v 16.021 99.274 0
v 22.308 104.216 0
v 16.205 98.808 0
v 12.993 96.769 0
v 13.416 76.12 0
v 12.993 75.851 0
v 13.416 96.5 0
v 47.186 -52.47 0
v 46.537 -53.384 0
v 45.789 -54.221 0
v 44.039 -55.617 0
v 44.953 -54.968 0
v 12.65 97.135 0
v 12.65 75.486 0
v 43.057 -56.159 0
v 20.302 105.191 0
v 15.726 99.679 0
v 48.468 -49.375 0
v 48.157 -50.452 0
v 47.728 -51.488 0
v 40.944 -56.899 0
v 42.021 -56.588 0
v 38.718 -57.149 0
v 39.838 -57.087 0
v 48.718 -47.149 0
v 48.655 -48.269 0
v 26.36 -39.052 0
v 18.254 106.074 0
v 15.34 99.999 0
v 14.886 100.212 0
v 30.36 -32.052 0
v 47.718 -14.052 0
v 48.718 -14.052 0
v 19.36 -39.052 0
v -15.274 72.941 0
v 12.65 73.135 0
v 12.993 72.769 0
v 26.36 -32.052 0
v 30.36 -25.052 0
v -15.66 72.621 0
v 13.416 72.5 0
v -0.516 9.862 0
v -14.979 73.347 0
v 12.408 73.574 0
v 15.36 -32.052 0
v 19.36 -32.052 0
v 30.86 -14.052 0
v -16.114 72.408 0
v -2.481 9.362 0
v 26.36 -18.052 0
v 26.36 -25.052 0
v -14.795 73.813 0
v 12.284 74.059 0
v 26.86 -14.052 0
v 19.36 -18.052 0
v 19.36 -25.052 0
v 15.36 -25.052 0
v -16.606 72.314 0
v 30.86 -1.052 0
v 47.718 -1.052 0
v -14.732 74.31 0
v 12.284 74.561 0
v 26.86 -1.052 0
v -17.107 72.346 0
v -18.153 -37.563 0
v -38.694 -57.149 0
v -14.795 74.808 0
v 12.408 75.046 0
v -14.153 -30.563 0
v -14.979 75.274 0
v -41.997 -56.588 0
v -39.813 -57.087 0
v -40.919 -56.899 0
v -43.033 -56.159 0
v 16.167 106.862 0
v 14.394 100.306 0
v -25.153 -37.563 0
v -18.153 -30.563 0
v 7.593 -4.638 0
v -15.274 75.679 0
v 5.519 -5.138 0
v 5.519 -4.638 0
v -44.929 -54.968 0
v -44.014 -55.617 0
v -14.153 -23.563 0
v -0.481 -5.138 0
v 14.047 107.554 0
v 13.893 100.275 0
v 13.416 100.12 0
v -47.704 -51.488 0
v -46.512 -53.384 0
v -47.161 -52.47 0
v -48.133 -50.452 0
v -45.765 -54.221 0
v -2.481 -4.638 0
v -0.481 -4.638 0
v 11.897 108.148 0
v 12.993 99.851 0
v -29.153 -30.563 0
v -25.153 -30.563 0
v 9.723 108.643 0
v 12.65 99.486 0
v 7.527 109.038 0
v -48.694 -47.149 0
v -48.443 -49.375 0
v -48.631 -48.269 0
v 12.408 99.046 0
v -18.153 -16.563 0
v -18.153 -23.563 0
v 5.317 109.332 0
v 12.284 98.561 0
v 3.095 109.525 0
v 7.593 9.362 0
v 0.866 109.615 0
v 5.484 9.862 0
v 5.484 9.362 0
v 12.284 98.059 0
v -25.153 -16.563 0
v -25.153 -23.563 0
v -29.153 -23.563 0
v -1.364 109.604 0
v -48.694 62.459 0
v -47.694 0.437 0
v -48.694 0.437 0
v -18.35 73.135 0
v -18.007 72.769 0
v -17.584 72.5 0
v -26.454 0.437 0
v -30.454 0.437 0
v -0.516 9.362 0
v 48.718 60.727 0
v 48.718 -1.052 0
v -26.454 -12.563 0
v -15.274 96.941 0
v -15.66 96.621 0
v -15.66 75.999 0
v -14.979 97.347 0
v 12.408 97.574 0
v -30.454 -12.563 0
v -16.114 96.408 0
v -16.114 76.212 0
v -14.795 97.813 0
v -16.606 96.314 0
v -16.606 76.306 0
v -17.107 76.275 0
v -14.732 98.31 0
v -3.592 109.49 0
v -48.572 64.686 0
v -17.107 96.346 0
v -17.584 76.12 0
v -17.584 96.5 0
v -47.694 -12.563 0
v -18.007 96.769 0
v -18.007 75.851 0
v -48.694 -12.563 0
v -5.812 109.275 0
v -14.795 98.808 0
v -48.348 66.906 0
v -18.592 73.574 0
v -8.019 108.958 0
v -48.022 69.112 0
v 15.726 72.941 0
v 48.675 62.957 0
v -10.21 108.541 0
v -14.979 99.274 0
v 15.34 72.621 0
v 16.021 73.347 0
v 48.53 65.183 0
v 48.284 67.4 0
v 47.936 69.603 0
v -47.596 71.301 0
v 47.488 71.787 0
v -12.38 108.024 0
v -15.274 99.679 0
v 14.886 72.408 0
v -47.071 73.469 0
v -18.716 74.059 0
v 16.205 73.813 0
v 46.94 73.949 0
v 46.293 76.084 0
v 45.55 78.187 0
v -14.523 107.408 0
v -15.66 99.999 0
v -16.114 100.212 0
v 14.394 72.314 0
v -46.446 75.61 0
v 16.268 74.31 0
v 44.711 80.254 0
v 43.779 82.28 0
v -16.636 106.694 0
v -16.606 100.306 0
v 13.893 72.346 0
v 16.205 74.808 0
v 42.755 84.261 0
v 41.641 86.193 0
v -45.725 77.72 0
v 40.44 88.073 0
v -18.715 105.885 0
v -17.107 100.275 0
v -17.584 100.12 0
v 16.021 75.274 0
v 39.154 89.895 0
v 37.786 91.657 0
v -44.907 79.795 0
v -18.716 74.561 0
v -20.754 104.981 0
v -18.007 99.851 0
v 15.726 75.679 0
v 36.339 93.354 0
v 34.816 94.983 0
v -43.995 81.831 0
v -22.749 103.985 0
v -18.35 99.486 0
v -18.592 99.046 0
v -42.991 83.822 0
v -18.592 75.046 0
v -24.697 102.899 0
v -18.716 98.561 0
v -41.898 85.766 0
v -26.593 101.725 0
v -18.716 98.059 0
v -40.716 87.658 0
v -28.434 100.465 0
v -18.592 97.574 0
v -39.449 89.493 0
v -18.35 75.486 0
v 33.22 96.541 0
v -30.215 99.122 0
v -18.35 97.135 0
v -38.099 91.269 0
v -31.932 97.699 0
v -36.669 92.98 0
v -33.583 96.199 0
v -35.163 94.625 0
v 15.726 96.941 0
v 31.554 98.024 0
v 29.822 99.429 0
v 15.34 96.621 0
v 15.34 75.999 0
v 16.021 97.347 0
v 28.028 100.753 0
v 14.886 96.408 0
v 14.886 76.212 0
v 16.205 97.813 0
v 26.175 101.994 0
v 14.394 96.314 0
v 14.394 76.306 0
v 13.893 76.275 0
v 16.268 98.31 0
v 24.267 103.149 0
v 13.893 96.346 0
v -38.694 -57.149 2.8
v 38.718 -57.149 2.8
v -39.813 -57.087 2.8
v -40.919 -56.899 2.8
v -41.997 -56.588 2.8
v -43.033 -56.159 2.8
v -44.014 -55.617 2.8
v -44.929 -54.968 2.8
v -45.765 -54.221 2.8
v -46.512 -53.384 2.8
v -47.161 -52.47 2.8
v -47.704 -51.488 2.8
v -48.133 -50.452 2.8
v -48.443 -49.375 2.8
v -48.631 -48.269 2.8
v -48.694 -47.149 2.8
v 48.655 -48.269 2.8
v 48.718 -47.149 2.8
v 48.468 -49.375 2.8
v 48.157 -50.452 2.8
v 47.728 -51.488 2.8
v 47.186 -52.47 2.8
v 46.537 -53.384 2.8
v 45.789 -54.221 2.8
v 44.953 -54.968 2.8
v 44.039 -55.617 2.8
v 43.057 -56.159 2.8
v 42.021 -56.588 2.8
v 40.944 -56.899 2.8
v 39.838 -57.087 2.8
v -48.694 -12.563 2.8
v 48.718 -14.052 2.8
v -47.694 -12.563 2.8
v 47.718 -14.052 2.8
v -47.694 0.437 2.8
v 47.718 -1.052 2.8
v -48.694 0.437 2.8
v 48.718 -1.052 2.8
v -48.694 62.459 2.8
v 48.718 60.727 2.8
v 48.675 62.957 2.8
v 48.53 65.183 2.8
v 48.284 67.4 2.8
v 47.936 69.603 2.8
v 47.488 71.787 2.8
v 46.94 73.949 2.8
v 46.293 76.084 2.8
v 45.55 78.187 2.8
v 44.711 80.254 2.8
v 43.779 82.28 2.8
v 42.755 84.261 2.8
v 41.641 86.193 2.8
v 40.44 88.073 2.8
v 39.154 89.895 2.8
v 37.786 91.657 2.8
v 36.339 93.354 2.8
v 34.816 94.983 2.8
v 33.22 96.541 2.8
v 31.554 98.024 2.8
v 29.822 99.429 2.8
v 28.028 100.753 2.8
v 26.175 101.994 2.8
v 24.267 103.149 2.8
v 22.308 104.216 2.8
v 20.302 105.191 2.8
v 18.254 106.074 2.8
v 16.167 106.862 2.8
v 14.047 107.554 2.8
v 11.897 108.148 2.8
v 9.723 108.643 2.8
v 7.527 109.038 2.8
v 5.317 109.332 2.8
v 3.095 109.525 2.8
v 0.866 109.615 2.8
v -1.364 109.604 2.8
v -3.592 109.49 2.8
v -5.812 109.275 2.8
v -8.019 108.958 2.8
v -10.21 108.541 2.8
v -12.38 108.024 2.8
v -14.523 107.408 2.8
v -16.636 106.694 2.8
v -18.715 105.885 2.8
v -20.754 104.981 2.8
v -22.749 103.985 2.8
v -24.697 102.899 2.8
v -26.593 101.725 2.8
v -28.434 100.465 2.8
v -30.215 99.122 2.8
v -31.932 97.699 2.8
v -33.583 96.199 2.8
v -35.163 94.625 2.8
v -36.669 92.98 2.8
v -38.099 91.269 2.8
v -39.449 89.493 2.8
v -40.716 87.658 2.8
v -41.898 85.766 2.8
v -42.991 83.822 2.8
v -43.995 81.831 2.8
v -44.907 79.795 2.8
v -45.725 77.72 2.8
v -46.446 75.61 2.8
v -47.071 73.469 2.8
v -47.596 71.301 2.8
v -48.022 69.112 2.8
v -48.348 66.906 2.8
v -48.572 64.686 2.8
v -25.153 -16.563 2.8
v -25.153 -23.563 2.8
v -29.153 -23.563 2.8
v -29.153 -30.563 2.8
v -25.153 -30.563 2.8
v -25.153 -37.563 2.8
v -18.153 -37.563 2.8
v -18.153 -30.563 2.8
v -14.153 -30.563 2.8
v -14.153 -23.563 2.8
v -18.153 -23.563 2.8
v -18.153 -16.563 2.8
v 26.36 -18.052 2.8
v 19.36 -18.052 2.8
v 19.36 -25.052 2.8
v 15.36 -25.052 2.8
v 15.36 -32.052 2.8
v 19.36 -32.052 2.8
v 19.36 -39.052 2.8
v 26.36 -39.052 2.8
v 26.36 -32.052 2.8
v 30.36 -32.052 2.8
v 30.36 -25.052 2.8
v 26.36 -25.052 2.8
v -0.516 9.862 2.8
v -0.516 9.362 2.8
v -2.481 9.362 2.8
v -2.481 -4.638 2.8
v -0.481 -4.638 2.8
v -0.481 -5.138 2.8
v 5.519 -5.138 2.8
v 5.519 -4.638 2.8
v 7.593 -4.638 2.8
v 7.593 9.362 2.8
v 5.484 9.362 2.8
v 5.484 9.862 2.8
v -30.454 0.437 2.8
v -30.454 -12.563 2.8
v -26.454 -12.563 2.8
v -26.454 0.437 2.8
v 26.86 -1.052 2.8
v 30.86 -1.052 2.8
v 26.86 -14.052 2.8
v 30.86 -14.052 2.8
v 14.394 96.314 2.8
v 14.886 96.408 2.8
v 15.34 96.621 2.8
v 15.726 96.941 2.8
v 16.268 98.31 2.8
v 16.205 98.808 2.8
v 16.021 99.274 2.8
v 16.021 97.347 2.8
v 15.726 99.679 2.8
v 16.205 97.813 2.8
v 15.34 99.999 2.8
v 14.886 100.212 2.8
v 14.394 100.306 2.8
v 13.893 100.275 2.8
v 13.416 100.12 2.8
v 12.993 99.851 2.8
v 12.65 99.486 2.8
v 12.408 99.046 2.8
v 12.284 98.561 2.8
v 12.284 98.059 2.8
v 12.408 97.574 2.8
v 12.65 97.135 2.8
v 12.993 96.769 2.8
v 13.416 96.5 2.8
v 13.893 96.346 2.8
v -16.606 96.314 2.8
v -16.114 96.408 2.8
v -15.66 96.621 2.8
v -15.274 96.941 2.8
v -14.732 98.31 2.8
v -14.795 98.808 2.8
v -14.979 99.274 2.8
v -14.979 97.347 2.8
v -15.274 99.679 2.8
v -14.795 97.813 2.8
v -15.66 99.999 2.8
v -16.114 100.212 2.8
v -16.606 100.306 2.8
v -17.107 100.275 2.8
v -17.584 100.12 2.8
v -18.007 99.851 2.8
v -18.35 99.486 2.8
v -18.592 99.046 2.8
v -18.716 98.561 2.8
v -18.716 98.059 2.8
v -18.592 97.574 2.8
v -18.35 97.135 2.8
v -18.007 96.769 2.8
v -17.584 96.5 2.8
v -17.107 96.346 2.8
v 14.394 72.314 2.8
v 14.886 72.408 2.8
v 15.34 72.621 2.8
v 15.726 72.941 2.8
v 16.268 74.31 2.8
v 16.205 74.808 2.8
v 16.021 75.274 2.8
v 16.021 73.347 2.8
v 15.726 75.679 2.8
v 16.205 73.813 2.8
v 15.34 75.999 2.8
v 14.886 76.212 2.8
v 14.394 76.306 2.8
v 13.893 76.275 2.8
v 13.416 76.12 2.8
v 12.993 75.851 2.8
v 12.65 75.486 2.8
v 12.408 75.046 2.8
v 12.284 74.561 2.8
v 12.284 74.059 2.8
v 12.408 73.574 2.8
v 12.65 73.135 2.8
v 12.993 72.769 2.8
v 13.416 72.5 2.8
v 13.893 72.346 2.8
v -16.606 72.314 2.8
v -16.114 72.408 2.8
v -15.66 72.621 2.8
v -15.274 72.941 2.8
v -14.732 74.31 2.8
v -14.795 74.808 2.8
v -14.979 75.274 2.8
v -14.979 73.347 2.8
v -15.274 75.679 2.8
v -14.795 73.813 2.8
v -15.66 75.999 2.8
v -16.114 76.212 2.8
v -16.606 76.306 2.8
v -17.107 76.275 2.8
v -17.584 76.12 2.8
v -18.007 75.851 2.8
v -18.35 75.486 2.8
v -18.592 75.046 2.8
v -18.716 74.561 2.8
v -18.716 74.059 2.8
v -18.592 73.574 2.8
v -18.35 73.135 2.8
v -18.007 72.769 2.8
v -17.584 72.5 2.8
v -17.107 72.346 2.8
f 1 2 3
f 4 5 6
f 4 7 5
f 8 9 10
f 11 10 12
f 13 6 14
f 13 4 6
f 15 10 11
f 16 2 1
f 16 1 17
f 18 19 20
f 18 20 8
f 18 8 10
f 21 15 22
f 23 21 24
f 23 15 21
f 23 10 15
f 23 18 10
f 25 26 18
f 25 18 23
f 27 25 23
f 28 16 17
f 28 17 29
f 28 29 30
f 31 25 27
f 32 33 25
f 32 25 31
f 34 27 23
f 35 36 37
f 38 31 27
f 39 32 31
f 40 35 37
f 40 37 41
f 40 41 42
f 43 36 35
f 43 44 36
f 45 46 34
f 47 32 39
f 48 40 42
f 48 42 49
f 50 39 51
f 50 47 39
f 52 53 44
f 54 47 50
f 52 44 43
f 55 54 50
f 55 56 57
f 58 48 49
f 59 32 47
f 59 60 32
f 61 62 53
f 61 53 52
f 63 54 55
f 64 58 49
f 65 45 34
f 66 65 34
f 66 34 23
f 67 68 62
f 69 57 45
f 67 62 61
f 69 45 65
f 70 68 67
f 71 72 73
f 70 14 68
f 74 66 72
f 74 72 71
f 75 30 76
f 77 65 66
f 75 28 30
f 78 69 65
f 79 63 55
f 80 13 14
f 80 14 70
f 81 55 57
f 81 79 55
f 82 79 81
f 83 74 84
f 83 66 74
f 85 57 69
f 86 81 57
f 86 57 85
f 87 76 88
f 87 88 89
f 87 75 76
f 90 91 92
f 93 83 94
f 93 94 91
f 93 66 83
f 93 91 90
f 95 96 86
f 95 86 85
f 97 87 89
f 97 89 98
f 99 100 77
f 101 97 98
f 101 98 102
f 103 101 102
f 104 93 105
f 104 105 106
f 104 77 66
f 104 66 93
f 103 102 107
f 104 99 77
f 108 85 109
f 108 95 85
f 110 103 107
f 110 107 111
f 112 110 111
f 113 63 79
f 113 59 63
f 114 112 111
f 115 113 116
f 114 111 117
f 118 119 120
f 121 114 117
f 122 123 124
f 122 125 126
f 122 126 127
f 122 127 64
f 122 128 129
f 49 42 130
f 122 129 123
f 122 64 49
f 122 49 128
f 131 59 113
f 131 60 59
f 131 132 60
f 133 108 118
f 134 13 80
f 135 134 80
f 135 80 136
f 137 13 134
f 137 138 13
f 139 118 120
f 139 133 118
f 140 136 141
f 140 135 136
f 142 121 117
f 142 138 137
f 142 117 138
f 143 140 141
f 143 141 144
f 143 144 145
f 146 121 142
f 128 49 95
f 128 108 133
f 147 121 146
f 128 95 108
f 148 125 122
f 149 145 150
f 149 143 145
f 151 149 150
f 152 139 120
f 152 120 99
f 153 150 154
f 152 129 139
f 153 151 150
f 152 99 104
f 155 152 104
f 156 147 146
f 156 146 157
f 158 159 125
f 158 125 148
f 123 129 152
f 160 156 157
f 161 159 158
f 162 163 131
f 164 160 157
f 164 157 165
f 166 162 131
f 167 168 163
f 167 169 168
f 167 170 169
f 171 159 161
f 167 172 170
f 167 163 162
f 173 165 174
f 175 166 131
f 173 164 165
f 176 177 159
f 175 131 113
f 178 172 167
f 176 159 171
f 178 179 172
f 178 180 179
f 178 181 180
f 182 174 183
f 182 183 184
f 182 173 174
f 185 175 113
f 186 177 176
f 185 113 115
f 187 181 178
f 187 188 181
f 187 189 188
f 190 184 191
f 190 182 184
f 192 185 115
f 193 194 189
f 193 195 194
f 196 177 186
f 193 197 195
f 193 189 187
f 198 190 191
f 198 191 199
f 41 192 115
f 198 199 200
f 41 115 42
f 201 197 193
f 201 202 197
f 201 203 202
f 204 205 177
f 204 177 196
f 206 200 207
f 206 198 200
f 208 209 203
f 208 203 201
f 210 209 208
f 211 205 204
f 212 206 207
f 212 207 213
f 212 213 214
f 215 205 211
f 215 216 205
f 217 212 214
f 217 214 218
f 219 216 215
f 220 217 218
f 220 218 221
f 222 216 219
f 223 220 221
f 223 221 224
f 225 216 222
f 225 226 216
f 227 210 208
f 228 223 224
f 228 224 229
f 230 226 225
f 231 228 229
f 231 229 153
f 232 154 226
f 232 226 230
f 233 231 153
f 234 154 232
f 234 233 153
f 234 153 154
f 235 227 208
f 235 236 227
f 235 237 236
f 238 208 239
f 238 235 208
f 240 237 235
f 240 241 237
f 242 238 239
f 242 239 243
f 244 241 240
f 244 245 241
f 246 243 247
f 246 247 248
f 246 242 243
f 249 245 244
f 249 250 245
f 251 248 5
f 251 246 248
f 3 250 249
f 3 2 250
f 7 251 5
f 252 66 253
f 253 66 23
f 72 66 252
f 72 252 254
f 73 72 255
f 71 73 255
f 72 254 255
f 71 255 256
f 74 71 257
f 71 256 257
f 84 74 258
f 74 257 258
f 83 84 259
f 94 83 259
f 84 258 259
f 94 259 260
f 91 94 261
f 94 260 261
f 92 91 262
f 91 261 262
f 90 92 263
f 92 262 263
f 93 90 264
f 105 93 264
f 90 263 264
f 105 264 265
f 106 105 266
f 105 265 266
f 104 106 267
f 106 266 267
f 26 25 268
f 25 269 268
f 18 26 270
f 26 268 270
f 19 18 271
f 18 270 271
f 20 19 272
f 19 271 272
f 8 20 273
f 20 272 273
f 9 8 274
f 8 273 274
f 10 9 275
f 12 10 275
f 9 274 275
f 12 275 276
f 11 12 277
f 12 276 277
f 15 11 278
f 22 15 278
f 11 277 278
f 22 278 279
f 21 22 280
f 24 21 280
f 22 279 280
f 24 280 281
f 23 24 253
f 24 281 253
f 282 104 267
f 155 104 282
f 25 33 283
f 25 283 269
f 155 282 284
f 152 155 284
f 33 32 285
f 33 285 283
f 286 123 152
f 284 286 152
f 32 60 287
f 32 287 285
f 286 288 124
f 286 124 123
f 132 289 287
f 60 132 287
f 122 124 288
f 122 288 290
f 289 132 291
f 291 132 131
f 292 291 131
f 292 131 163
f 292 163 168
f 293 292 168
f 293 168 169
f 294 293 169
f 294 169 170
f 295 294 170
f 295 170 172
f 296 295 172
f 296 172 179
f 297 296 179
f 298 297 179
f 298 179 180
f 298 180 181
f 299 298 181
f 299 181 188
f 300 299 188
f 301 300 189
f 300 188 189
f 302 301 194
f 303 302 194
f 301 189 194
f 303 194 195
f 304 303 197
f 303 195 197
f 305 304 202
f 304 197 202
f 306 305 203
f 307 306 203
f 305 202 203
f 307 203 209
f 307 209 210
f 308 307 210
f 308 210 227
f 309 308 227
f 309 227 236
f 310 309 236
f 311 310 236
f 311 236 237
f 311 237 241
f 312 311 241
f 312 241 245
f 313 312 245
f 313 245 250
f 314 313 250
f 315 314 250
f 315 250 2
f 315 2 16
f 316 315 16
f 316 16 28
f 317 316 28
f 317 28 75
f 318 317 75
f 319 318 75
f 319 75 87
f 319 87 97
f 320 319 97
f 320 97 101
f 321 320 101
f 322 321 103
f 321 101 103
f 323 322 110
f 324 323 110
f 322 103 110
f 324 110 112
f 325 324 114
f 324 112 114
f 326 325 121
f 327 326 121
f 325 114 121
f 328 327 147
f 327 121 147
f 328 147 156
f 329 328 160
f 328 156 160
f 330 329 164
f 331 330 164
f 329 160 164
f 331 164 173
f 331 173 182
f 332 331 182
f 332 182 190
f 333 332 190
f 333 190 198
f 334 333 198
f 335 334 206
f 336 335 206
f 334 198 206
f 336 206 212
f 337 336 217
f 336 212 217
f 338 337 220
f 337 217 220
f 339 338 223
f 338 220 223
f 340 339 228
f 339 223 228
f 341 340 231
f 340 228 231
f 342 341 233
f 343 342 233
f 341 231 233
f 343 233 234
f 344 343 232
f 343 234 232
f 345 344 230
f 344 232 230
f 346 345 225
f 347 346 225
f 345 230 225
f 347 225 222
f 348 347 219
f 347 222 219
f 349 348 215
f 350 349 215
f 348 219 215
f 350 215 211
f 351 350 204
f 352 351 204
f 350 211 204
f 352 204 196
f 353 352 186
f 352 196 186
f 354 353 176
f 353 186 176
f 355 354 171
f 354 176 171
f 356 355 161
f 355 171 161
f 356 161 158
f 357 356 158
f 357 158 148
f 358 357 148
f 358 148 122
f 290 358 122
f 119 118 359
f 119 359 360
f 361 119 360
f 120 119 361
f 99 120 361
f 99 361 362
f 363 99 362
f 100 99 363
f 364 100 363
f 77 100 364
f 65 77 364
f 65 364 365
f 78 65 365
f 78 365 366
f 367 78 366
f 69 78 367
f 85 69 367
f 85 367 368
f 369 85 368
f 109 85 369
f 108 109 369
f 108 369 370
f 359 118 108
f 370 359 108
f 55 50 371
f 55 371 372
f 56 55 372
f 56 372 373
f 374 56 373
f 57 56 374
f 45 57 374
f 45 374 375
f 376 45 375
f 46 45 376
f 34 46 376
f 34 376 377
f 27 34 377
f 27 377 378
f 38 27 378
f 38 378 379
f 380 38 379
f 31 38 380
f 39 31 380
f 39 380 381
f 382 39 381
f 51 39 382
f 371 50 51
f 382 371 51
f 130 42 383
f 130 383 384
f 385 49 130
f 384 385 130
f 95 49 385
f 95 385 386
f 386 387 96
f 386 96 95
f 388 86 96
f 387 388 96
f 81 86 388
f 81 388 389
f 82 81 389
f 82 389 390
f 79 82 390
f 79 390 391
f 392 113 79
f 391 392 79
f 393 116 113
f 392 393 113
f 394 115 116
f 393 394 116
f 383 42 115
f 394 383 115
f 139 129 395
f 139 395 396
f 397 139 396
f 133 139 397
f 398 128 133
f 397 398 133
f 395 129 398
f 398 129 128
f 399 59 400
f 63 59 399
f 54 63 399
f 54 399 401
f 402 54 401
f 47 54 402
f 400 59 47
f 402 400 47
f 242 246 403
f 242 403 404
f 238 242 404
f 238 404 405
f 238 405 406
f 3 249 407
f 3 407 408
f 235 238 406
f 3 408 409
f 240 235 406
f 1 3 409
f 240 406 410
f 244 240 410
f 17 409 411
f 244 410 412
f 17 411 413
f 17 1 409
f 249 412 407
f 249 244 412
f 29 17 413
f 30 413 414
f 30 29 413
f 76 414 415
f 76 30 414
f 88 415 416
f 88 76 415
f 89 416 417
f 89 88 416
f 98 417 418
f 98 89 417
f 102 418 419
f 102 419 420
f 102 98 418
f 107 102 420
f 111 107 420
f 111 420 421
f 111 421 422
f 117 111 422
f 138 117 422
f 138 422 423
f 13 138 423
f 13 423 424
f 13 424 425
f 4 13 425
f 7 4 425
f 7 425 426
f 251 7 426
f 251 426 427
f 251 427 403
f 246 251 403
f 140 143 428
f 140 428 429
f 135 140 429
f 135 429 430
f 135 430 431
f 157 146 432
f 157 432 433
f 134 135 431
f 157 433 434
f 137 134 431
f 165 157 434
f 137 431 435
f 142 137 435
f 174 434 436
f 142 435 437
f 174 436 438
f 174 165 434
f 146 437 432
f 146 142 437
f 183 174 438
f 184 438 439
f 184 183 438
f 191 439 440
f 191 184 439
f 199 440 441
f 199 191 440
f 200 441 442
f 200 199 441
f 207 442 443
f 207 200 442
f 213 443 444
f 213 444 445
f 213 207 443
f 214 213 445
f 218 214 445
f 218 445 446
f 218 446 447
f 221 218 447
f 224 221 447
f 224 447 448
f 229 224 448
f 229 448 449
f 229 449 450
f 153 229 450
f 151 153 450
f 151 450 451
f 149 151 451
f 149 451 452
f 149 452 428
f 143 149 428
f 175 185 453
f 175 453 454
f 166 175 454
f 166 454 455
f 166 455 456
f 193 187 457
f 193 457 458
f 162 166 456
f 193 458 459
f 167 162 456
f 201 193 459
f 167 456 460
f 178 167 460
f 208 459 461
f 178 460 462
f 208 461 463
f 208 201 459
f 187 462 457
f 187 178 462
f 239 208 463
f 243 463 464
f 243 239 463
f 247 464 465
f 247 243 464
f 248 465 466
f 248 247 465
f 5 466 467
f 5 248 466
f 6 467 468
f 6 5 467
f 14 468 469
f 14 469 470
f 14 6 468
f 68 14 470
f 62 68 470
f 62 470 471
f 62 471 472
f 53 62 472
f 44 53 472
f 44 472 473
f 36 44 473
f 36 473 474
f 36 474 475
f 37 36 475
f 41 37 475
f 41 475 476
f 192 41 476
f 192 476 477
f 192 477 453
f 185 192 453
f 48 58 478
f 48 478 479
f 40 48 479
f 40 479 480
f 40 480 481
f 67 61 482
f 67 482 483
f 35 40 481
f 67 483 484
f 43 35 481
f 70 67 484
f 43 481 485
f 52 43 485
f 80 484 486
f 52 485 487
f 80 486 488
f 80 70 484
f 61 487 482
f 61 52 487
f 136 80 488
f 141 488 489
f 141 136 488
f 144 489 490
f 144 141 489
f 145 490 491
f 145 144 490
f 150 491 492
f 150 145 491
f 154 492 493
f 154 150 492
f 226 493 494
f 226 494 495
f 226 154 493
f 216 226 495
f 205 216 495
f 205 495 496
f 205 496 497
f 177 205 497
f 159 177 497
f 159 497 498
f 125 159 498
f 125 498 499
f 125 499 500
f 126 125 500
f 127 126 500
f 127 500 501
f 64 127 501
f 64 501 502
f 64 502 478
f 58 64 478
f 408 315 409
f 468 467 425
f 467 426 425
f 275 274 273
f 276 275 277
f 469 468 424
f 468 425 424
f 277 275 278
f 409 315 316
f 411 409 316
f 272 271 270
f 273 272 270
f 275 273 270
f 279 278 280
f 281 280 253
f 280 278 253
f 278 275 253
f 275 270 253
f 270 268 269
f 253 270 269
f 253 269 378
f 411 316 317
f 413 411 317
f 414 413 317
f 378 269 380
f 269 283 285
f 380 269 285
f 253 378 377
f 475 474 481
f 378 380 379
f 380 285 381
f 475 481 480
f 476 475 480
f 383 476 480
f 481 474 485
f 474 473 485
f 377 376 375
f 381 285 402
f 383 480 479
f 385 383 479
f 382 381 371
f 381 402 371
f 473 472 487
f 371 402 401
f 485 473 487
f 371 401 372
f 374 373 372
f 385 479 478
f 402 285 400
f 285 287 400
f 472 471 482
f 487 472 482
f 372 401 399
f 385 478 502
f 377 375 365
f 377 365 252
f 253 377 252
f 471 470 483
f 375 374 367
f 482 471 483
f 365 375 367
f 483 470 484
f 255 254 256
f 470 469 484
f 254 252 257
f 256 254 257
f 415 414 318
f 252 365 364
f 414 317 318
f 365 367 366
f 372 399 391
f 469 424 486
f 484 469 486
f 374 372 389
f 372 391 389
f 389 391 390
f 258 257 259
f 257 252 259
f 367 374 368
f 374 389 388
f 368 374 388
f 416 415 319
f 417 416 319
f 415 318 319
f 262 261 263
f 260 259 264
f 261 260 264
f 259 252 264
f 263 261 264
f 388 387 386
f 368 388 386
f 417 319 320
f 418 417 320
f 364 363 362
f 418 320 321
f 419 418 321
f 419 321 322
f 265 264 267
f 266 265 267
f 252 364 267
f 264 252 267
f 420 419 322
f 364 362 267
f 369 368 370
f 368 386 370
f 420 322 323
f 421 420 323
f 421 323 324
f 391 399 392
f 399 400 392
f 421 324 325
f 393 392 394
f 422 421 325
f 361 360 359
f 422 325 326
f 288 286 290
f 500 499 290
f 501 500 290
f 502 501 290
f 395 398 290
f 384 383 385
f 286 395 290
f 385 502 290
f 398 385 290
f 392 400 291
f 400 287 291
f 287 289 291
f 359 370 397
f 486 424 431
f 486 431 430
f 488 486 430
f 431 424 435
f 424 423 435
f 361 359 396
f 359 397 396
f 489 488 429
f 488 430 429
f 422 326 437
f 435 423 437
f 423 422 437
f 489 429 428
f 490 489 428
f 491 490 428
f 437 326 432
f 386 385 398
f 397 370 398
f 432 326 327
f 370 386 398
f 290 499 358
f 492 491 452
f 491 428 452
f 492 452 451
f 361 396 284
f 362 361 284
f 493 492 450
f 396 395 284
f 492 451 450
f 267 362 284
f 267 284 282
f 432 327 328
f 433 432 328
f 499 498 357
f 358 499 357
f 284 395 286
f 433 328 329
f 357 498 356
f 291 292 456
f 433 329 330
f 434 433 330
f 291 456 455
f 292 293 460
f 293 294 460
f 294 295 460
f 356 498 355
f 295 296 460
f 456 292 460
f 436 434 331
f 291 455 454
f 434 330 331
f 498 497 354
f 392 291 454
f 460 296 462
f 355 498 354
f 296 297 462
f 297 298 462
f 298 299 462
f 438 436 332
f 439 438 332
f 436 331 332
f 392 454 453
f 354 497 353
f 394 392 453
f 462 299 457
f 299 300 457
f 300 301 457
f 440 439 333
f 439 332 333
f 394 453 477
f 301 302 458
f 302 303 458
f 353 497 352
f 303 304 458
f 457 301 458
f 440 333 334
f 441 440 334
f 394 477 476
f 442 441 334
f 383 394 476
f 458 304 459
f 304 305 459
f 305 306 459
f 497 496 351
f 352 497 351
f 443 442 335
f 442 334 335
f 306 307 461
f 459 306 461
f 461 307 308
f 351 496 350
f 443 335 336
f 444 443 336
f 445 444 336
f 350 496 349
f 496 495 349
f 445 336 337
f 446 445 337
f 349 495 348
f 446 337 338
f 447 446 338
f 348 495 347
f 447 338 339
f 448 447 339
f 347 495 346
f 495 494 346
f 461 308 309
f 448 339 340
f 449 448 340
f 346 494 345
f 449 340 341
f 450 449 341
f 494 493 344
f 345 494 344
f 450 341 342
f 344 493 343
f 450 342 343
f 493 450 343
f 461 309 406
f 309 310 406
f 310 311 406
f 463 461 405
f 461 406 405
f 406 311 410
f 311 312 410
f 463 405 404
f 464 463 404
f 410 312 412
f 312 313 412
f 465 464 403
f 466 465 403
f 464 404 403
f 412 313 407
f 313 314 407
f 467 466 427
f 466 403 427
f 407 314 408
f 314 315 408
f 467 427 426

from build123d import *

# Parameters (mm, degrees)
SKETCH001_R = 2
SKETCH001_W = 4
SKETCH001_H = 13
PAD_DEPTH   = 2.8
FILLET_R    = 10
FILLET001_R = 10


with BuildPart() as part:
    # Sketch001 → Pad (new body)
    with BuildSketch(Plane.XY):
        with BuildLine():
            Line((48.718334, -1.052358), (47.718334, -1.052358))
            Line((47.718334, -1.052358), (47.718334, -14.052358))
            Line((47.718334, -14.052358), (48.718364, -14.052358))
            Line((48.718364, -14.052358), (48.718364, -57.149485))
            Line((-48.693828, -57.149485), (48.718364, -57.149485))
            Line((-48.693828, -57.149485), (-48.693828, -12.562763))
            Line((-48.693828, -12.562763), (-47.693828, -12.562763))
            Line((-47.693828, 0.437237), (-47.693828, -12.562763))
            Line((-48.693828, 0.437237), (-47.693828, 0.437237))
            Line((-48.693828, 0.437237), (-48.693828, 62.459473))
            ThreePointArc((48.718334, 60.727454), (0.866096, 109.615293), (-48.693828, 62.459473))
            Line((48.718334, -1.052358), (48.718334, 60.727454))
        make_face()
        with Locations((-16.731984, 74.31012)):
            Circle(SKETCH001_R, mode=Mode.SUBTRACT)
        with Locations((14.268016, 74.31012)):
            Circle(SKETCH001_R, mode=Mode.SUBTRACT)
        with Locations((-16.731984, 98.31012)):
            Circle(SKETCH001_R, mode=Mode.SUBTRACT)
        with Locations((14.268016, 98.31012)):
            Circle(SKETCH001_R, mode=Mode.SUBTRACT)
        with Locations((28.860233, -7.552358)):
            Rectangle(SKETCH001_W, SKETCH001_H, mode=Mode.SUBTRACT)
        with Locations((-28.454098, -6.062763)):
            Rectangle(SKETCH001_W, SKETCH001_H, mode=Mode.SUBTRACT)
        Polygon((7.593316, 9.361636), (7.593316, -4.638364), (5.519069, -4.638364), (5.519069, -5.138364), (-0.480931, -5.138364), (-0.480931, -4.638364), (-2.480931, -4.638364), (-2.480931, 9.361636), (-0.515563, 9.361636), (-0.515563, 9.861636), (5.484437, 9.861636), (5.484437, 9.361636), align=None, mode=Mode.SUBTRACT)
        Polygon((26.360233, -18.052358), (19.360233, -18.052358), (19.360233, -25.052358), (15.360233, -25.052358), (15.360233, -32.052358), (19.360233, -32.052358), (19.360233, -39.052358), (26.360233, -39.052358), (26.360233, -32.052358), (30.360233, -32.052358), (30.360233, -25.052358), (26.360233, -25.052358), align=None, mode=Mode.SUBTRACT)
        Polygon((-25.153265, -16.562763), (-25.153265, -23.562763), (-29.153265, -23.562763), (-29.153265, -30.562763), (-25.153265, -30.562763), (-25.153265, -37.562763), (-18.153265, -37.562763), (-18.153265, -30.562763), (-14.153265, -30.562763), (-14.153265, -23.562763), (-18.153265, -23.562763), (-18.153265, -16.562763), align=None, mode=Mode.SUBTRACT)
    extrude(amount=PAD_DEPTH)

    # Fillet
    fillet_edges = [part.edges().sort_by_distance(p)[0] for p in [
        (48.718364, -57.149485, 1.4),
    ]]
    fillet(fillet_edges, radius=FILLET_R)

    # Fillet001
    fillet001_edges = [part.edges().sort_by_distance(p)[0] for p in [
        (-48.693828, -57.149485, 1.4),
    ]]
    fillet(fillet001_edges, radius=FILLET001_R)


solid = part.part
